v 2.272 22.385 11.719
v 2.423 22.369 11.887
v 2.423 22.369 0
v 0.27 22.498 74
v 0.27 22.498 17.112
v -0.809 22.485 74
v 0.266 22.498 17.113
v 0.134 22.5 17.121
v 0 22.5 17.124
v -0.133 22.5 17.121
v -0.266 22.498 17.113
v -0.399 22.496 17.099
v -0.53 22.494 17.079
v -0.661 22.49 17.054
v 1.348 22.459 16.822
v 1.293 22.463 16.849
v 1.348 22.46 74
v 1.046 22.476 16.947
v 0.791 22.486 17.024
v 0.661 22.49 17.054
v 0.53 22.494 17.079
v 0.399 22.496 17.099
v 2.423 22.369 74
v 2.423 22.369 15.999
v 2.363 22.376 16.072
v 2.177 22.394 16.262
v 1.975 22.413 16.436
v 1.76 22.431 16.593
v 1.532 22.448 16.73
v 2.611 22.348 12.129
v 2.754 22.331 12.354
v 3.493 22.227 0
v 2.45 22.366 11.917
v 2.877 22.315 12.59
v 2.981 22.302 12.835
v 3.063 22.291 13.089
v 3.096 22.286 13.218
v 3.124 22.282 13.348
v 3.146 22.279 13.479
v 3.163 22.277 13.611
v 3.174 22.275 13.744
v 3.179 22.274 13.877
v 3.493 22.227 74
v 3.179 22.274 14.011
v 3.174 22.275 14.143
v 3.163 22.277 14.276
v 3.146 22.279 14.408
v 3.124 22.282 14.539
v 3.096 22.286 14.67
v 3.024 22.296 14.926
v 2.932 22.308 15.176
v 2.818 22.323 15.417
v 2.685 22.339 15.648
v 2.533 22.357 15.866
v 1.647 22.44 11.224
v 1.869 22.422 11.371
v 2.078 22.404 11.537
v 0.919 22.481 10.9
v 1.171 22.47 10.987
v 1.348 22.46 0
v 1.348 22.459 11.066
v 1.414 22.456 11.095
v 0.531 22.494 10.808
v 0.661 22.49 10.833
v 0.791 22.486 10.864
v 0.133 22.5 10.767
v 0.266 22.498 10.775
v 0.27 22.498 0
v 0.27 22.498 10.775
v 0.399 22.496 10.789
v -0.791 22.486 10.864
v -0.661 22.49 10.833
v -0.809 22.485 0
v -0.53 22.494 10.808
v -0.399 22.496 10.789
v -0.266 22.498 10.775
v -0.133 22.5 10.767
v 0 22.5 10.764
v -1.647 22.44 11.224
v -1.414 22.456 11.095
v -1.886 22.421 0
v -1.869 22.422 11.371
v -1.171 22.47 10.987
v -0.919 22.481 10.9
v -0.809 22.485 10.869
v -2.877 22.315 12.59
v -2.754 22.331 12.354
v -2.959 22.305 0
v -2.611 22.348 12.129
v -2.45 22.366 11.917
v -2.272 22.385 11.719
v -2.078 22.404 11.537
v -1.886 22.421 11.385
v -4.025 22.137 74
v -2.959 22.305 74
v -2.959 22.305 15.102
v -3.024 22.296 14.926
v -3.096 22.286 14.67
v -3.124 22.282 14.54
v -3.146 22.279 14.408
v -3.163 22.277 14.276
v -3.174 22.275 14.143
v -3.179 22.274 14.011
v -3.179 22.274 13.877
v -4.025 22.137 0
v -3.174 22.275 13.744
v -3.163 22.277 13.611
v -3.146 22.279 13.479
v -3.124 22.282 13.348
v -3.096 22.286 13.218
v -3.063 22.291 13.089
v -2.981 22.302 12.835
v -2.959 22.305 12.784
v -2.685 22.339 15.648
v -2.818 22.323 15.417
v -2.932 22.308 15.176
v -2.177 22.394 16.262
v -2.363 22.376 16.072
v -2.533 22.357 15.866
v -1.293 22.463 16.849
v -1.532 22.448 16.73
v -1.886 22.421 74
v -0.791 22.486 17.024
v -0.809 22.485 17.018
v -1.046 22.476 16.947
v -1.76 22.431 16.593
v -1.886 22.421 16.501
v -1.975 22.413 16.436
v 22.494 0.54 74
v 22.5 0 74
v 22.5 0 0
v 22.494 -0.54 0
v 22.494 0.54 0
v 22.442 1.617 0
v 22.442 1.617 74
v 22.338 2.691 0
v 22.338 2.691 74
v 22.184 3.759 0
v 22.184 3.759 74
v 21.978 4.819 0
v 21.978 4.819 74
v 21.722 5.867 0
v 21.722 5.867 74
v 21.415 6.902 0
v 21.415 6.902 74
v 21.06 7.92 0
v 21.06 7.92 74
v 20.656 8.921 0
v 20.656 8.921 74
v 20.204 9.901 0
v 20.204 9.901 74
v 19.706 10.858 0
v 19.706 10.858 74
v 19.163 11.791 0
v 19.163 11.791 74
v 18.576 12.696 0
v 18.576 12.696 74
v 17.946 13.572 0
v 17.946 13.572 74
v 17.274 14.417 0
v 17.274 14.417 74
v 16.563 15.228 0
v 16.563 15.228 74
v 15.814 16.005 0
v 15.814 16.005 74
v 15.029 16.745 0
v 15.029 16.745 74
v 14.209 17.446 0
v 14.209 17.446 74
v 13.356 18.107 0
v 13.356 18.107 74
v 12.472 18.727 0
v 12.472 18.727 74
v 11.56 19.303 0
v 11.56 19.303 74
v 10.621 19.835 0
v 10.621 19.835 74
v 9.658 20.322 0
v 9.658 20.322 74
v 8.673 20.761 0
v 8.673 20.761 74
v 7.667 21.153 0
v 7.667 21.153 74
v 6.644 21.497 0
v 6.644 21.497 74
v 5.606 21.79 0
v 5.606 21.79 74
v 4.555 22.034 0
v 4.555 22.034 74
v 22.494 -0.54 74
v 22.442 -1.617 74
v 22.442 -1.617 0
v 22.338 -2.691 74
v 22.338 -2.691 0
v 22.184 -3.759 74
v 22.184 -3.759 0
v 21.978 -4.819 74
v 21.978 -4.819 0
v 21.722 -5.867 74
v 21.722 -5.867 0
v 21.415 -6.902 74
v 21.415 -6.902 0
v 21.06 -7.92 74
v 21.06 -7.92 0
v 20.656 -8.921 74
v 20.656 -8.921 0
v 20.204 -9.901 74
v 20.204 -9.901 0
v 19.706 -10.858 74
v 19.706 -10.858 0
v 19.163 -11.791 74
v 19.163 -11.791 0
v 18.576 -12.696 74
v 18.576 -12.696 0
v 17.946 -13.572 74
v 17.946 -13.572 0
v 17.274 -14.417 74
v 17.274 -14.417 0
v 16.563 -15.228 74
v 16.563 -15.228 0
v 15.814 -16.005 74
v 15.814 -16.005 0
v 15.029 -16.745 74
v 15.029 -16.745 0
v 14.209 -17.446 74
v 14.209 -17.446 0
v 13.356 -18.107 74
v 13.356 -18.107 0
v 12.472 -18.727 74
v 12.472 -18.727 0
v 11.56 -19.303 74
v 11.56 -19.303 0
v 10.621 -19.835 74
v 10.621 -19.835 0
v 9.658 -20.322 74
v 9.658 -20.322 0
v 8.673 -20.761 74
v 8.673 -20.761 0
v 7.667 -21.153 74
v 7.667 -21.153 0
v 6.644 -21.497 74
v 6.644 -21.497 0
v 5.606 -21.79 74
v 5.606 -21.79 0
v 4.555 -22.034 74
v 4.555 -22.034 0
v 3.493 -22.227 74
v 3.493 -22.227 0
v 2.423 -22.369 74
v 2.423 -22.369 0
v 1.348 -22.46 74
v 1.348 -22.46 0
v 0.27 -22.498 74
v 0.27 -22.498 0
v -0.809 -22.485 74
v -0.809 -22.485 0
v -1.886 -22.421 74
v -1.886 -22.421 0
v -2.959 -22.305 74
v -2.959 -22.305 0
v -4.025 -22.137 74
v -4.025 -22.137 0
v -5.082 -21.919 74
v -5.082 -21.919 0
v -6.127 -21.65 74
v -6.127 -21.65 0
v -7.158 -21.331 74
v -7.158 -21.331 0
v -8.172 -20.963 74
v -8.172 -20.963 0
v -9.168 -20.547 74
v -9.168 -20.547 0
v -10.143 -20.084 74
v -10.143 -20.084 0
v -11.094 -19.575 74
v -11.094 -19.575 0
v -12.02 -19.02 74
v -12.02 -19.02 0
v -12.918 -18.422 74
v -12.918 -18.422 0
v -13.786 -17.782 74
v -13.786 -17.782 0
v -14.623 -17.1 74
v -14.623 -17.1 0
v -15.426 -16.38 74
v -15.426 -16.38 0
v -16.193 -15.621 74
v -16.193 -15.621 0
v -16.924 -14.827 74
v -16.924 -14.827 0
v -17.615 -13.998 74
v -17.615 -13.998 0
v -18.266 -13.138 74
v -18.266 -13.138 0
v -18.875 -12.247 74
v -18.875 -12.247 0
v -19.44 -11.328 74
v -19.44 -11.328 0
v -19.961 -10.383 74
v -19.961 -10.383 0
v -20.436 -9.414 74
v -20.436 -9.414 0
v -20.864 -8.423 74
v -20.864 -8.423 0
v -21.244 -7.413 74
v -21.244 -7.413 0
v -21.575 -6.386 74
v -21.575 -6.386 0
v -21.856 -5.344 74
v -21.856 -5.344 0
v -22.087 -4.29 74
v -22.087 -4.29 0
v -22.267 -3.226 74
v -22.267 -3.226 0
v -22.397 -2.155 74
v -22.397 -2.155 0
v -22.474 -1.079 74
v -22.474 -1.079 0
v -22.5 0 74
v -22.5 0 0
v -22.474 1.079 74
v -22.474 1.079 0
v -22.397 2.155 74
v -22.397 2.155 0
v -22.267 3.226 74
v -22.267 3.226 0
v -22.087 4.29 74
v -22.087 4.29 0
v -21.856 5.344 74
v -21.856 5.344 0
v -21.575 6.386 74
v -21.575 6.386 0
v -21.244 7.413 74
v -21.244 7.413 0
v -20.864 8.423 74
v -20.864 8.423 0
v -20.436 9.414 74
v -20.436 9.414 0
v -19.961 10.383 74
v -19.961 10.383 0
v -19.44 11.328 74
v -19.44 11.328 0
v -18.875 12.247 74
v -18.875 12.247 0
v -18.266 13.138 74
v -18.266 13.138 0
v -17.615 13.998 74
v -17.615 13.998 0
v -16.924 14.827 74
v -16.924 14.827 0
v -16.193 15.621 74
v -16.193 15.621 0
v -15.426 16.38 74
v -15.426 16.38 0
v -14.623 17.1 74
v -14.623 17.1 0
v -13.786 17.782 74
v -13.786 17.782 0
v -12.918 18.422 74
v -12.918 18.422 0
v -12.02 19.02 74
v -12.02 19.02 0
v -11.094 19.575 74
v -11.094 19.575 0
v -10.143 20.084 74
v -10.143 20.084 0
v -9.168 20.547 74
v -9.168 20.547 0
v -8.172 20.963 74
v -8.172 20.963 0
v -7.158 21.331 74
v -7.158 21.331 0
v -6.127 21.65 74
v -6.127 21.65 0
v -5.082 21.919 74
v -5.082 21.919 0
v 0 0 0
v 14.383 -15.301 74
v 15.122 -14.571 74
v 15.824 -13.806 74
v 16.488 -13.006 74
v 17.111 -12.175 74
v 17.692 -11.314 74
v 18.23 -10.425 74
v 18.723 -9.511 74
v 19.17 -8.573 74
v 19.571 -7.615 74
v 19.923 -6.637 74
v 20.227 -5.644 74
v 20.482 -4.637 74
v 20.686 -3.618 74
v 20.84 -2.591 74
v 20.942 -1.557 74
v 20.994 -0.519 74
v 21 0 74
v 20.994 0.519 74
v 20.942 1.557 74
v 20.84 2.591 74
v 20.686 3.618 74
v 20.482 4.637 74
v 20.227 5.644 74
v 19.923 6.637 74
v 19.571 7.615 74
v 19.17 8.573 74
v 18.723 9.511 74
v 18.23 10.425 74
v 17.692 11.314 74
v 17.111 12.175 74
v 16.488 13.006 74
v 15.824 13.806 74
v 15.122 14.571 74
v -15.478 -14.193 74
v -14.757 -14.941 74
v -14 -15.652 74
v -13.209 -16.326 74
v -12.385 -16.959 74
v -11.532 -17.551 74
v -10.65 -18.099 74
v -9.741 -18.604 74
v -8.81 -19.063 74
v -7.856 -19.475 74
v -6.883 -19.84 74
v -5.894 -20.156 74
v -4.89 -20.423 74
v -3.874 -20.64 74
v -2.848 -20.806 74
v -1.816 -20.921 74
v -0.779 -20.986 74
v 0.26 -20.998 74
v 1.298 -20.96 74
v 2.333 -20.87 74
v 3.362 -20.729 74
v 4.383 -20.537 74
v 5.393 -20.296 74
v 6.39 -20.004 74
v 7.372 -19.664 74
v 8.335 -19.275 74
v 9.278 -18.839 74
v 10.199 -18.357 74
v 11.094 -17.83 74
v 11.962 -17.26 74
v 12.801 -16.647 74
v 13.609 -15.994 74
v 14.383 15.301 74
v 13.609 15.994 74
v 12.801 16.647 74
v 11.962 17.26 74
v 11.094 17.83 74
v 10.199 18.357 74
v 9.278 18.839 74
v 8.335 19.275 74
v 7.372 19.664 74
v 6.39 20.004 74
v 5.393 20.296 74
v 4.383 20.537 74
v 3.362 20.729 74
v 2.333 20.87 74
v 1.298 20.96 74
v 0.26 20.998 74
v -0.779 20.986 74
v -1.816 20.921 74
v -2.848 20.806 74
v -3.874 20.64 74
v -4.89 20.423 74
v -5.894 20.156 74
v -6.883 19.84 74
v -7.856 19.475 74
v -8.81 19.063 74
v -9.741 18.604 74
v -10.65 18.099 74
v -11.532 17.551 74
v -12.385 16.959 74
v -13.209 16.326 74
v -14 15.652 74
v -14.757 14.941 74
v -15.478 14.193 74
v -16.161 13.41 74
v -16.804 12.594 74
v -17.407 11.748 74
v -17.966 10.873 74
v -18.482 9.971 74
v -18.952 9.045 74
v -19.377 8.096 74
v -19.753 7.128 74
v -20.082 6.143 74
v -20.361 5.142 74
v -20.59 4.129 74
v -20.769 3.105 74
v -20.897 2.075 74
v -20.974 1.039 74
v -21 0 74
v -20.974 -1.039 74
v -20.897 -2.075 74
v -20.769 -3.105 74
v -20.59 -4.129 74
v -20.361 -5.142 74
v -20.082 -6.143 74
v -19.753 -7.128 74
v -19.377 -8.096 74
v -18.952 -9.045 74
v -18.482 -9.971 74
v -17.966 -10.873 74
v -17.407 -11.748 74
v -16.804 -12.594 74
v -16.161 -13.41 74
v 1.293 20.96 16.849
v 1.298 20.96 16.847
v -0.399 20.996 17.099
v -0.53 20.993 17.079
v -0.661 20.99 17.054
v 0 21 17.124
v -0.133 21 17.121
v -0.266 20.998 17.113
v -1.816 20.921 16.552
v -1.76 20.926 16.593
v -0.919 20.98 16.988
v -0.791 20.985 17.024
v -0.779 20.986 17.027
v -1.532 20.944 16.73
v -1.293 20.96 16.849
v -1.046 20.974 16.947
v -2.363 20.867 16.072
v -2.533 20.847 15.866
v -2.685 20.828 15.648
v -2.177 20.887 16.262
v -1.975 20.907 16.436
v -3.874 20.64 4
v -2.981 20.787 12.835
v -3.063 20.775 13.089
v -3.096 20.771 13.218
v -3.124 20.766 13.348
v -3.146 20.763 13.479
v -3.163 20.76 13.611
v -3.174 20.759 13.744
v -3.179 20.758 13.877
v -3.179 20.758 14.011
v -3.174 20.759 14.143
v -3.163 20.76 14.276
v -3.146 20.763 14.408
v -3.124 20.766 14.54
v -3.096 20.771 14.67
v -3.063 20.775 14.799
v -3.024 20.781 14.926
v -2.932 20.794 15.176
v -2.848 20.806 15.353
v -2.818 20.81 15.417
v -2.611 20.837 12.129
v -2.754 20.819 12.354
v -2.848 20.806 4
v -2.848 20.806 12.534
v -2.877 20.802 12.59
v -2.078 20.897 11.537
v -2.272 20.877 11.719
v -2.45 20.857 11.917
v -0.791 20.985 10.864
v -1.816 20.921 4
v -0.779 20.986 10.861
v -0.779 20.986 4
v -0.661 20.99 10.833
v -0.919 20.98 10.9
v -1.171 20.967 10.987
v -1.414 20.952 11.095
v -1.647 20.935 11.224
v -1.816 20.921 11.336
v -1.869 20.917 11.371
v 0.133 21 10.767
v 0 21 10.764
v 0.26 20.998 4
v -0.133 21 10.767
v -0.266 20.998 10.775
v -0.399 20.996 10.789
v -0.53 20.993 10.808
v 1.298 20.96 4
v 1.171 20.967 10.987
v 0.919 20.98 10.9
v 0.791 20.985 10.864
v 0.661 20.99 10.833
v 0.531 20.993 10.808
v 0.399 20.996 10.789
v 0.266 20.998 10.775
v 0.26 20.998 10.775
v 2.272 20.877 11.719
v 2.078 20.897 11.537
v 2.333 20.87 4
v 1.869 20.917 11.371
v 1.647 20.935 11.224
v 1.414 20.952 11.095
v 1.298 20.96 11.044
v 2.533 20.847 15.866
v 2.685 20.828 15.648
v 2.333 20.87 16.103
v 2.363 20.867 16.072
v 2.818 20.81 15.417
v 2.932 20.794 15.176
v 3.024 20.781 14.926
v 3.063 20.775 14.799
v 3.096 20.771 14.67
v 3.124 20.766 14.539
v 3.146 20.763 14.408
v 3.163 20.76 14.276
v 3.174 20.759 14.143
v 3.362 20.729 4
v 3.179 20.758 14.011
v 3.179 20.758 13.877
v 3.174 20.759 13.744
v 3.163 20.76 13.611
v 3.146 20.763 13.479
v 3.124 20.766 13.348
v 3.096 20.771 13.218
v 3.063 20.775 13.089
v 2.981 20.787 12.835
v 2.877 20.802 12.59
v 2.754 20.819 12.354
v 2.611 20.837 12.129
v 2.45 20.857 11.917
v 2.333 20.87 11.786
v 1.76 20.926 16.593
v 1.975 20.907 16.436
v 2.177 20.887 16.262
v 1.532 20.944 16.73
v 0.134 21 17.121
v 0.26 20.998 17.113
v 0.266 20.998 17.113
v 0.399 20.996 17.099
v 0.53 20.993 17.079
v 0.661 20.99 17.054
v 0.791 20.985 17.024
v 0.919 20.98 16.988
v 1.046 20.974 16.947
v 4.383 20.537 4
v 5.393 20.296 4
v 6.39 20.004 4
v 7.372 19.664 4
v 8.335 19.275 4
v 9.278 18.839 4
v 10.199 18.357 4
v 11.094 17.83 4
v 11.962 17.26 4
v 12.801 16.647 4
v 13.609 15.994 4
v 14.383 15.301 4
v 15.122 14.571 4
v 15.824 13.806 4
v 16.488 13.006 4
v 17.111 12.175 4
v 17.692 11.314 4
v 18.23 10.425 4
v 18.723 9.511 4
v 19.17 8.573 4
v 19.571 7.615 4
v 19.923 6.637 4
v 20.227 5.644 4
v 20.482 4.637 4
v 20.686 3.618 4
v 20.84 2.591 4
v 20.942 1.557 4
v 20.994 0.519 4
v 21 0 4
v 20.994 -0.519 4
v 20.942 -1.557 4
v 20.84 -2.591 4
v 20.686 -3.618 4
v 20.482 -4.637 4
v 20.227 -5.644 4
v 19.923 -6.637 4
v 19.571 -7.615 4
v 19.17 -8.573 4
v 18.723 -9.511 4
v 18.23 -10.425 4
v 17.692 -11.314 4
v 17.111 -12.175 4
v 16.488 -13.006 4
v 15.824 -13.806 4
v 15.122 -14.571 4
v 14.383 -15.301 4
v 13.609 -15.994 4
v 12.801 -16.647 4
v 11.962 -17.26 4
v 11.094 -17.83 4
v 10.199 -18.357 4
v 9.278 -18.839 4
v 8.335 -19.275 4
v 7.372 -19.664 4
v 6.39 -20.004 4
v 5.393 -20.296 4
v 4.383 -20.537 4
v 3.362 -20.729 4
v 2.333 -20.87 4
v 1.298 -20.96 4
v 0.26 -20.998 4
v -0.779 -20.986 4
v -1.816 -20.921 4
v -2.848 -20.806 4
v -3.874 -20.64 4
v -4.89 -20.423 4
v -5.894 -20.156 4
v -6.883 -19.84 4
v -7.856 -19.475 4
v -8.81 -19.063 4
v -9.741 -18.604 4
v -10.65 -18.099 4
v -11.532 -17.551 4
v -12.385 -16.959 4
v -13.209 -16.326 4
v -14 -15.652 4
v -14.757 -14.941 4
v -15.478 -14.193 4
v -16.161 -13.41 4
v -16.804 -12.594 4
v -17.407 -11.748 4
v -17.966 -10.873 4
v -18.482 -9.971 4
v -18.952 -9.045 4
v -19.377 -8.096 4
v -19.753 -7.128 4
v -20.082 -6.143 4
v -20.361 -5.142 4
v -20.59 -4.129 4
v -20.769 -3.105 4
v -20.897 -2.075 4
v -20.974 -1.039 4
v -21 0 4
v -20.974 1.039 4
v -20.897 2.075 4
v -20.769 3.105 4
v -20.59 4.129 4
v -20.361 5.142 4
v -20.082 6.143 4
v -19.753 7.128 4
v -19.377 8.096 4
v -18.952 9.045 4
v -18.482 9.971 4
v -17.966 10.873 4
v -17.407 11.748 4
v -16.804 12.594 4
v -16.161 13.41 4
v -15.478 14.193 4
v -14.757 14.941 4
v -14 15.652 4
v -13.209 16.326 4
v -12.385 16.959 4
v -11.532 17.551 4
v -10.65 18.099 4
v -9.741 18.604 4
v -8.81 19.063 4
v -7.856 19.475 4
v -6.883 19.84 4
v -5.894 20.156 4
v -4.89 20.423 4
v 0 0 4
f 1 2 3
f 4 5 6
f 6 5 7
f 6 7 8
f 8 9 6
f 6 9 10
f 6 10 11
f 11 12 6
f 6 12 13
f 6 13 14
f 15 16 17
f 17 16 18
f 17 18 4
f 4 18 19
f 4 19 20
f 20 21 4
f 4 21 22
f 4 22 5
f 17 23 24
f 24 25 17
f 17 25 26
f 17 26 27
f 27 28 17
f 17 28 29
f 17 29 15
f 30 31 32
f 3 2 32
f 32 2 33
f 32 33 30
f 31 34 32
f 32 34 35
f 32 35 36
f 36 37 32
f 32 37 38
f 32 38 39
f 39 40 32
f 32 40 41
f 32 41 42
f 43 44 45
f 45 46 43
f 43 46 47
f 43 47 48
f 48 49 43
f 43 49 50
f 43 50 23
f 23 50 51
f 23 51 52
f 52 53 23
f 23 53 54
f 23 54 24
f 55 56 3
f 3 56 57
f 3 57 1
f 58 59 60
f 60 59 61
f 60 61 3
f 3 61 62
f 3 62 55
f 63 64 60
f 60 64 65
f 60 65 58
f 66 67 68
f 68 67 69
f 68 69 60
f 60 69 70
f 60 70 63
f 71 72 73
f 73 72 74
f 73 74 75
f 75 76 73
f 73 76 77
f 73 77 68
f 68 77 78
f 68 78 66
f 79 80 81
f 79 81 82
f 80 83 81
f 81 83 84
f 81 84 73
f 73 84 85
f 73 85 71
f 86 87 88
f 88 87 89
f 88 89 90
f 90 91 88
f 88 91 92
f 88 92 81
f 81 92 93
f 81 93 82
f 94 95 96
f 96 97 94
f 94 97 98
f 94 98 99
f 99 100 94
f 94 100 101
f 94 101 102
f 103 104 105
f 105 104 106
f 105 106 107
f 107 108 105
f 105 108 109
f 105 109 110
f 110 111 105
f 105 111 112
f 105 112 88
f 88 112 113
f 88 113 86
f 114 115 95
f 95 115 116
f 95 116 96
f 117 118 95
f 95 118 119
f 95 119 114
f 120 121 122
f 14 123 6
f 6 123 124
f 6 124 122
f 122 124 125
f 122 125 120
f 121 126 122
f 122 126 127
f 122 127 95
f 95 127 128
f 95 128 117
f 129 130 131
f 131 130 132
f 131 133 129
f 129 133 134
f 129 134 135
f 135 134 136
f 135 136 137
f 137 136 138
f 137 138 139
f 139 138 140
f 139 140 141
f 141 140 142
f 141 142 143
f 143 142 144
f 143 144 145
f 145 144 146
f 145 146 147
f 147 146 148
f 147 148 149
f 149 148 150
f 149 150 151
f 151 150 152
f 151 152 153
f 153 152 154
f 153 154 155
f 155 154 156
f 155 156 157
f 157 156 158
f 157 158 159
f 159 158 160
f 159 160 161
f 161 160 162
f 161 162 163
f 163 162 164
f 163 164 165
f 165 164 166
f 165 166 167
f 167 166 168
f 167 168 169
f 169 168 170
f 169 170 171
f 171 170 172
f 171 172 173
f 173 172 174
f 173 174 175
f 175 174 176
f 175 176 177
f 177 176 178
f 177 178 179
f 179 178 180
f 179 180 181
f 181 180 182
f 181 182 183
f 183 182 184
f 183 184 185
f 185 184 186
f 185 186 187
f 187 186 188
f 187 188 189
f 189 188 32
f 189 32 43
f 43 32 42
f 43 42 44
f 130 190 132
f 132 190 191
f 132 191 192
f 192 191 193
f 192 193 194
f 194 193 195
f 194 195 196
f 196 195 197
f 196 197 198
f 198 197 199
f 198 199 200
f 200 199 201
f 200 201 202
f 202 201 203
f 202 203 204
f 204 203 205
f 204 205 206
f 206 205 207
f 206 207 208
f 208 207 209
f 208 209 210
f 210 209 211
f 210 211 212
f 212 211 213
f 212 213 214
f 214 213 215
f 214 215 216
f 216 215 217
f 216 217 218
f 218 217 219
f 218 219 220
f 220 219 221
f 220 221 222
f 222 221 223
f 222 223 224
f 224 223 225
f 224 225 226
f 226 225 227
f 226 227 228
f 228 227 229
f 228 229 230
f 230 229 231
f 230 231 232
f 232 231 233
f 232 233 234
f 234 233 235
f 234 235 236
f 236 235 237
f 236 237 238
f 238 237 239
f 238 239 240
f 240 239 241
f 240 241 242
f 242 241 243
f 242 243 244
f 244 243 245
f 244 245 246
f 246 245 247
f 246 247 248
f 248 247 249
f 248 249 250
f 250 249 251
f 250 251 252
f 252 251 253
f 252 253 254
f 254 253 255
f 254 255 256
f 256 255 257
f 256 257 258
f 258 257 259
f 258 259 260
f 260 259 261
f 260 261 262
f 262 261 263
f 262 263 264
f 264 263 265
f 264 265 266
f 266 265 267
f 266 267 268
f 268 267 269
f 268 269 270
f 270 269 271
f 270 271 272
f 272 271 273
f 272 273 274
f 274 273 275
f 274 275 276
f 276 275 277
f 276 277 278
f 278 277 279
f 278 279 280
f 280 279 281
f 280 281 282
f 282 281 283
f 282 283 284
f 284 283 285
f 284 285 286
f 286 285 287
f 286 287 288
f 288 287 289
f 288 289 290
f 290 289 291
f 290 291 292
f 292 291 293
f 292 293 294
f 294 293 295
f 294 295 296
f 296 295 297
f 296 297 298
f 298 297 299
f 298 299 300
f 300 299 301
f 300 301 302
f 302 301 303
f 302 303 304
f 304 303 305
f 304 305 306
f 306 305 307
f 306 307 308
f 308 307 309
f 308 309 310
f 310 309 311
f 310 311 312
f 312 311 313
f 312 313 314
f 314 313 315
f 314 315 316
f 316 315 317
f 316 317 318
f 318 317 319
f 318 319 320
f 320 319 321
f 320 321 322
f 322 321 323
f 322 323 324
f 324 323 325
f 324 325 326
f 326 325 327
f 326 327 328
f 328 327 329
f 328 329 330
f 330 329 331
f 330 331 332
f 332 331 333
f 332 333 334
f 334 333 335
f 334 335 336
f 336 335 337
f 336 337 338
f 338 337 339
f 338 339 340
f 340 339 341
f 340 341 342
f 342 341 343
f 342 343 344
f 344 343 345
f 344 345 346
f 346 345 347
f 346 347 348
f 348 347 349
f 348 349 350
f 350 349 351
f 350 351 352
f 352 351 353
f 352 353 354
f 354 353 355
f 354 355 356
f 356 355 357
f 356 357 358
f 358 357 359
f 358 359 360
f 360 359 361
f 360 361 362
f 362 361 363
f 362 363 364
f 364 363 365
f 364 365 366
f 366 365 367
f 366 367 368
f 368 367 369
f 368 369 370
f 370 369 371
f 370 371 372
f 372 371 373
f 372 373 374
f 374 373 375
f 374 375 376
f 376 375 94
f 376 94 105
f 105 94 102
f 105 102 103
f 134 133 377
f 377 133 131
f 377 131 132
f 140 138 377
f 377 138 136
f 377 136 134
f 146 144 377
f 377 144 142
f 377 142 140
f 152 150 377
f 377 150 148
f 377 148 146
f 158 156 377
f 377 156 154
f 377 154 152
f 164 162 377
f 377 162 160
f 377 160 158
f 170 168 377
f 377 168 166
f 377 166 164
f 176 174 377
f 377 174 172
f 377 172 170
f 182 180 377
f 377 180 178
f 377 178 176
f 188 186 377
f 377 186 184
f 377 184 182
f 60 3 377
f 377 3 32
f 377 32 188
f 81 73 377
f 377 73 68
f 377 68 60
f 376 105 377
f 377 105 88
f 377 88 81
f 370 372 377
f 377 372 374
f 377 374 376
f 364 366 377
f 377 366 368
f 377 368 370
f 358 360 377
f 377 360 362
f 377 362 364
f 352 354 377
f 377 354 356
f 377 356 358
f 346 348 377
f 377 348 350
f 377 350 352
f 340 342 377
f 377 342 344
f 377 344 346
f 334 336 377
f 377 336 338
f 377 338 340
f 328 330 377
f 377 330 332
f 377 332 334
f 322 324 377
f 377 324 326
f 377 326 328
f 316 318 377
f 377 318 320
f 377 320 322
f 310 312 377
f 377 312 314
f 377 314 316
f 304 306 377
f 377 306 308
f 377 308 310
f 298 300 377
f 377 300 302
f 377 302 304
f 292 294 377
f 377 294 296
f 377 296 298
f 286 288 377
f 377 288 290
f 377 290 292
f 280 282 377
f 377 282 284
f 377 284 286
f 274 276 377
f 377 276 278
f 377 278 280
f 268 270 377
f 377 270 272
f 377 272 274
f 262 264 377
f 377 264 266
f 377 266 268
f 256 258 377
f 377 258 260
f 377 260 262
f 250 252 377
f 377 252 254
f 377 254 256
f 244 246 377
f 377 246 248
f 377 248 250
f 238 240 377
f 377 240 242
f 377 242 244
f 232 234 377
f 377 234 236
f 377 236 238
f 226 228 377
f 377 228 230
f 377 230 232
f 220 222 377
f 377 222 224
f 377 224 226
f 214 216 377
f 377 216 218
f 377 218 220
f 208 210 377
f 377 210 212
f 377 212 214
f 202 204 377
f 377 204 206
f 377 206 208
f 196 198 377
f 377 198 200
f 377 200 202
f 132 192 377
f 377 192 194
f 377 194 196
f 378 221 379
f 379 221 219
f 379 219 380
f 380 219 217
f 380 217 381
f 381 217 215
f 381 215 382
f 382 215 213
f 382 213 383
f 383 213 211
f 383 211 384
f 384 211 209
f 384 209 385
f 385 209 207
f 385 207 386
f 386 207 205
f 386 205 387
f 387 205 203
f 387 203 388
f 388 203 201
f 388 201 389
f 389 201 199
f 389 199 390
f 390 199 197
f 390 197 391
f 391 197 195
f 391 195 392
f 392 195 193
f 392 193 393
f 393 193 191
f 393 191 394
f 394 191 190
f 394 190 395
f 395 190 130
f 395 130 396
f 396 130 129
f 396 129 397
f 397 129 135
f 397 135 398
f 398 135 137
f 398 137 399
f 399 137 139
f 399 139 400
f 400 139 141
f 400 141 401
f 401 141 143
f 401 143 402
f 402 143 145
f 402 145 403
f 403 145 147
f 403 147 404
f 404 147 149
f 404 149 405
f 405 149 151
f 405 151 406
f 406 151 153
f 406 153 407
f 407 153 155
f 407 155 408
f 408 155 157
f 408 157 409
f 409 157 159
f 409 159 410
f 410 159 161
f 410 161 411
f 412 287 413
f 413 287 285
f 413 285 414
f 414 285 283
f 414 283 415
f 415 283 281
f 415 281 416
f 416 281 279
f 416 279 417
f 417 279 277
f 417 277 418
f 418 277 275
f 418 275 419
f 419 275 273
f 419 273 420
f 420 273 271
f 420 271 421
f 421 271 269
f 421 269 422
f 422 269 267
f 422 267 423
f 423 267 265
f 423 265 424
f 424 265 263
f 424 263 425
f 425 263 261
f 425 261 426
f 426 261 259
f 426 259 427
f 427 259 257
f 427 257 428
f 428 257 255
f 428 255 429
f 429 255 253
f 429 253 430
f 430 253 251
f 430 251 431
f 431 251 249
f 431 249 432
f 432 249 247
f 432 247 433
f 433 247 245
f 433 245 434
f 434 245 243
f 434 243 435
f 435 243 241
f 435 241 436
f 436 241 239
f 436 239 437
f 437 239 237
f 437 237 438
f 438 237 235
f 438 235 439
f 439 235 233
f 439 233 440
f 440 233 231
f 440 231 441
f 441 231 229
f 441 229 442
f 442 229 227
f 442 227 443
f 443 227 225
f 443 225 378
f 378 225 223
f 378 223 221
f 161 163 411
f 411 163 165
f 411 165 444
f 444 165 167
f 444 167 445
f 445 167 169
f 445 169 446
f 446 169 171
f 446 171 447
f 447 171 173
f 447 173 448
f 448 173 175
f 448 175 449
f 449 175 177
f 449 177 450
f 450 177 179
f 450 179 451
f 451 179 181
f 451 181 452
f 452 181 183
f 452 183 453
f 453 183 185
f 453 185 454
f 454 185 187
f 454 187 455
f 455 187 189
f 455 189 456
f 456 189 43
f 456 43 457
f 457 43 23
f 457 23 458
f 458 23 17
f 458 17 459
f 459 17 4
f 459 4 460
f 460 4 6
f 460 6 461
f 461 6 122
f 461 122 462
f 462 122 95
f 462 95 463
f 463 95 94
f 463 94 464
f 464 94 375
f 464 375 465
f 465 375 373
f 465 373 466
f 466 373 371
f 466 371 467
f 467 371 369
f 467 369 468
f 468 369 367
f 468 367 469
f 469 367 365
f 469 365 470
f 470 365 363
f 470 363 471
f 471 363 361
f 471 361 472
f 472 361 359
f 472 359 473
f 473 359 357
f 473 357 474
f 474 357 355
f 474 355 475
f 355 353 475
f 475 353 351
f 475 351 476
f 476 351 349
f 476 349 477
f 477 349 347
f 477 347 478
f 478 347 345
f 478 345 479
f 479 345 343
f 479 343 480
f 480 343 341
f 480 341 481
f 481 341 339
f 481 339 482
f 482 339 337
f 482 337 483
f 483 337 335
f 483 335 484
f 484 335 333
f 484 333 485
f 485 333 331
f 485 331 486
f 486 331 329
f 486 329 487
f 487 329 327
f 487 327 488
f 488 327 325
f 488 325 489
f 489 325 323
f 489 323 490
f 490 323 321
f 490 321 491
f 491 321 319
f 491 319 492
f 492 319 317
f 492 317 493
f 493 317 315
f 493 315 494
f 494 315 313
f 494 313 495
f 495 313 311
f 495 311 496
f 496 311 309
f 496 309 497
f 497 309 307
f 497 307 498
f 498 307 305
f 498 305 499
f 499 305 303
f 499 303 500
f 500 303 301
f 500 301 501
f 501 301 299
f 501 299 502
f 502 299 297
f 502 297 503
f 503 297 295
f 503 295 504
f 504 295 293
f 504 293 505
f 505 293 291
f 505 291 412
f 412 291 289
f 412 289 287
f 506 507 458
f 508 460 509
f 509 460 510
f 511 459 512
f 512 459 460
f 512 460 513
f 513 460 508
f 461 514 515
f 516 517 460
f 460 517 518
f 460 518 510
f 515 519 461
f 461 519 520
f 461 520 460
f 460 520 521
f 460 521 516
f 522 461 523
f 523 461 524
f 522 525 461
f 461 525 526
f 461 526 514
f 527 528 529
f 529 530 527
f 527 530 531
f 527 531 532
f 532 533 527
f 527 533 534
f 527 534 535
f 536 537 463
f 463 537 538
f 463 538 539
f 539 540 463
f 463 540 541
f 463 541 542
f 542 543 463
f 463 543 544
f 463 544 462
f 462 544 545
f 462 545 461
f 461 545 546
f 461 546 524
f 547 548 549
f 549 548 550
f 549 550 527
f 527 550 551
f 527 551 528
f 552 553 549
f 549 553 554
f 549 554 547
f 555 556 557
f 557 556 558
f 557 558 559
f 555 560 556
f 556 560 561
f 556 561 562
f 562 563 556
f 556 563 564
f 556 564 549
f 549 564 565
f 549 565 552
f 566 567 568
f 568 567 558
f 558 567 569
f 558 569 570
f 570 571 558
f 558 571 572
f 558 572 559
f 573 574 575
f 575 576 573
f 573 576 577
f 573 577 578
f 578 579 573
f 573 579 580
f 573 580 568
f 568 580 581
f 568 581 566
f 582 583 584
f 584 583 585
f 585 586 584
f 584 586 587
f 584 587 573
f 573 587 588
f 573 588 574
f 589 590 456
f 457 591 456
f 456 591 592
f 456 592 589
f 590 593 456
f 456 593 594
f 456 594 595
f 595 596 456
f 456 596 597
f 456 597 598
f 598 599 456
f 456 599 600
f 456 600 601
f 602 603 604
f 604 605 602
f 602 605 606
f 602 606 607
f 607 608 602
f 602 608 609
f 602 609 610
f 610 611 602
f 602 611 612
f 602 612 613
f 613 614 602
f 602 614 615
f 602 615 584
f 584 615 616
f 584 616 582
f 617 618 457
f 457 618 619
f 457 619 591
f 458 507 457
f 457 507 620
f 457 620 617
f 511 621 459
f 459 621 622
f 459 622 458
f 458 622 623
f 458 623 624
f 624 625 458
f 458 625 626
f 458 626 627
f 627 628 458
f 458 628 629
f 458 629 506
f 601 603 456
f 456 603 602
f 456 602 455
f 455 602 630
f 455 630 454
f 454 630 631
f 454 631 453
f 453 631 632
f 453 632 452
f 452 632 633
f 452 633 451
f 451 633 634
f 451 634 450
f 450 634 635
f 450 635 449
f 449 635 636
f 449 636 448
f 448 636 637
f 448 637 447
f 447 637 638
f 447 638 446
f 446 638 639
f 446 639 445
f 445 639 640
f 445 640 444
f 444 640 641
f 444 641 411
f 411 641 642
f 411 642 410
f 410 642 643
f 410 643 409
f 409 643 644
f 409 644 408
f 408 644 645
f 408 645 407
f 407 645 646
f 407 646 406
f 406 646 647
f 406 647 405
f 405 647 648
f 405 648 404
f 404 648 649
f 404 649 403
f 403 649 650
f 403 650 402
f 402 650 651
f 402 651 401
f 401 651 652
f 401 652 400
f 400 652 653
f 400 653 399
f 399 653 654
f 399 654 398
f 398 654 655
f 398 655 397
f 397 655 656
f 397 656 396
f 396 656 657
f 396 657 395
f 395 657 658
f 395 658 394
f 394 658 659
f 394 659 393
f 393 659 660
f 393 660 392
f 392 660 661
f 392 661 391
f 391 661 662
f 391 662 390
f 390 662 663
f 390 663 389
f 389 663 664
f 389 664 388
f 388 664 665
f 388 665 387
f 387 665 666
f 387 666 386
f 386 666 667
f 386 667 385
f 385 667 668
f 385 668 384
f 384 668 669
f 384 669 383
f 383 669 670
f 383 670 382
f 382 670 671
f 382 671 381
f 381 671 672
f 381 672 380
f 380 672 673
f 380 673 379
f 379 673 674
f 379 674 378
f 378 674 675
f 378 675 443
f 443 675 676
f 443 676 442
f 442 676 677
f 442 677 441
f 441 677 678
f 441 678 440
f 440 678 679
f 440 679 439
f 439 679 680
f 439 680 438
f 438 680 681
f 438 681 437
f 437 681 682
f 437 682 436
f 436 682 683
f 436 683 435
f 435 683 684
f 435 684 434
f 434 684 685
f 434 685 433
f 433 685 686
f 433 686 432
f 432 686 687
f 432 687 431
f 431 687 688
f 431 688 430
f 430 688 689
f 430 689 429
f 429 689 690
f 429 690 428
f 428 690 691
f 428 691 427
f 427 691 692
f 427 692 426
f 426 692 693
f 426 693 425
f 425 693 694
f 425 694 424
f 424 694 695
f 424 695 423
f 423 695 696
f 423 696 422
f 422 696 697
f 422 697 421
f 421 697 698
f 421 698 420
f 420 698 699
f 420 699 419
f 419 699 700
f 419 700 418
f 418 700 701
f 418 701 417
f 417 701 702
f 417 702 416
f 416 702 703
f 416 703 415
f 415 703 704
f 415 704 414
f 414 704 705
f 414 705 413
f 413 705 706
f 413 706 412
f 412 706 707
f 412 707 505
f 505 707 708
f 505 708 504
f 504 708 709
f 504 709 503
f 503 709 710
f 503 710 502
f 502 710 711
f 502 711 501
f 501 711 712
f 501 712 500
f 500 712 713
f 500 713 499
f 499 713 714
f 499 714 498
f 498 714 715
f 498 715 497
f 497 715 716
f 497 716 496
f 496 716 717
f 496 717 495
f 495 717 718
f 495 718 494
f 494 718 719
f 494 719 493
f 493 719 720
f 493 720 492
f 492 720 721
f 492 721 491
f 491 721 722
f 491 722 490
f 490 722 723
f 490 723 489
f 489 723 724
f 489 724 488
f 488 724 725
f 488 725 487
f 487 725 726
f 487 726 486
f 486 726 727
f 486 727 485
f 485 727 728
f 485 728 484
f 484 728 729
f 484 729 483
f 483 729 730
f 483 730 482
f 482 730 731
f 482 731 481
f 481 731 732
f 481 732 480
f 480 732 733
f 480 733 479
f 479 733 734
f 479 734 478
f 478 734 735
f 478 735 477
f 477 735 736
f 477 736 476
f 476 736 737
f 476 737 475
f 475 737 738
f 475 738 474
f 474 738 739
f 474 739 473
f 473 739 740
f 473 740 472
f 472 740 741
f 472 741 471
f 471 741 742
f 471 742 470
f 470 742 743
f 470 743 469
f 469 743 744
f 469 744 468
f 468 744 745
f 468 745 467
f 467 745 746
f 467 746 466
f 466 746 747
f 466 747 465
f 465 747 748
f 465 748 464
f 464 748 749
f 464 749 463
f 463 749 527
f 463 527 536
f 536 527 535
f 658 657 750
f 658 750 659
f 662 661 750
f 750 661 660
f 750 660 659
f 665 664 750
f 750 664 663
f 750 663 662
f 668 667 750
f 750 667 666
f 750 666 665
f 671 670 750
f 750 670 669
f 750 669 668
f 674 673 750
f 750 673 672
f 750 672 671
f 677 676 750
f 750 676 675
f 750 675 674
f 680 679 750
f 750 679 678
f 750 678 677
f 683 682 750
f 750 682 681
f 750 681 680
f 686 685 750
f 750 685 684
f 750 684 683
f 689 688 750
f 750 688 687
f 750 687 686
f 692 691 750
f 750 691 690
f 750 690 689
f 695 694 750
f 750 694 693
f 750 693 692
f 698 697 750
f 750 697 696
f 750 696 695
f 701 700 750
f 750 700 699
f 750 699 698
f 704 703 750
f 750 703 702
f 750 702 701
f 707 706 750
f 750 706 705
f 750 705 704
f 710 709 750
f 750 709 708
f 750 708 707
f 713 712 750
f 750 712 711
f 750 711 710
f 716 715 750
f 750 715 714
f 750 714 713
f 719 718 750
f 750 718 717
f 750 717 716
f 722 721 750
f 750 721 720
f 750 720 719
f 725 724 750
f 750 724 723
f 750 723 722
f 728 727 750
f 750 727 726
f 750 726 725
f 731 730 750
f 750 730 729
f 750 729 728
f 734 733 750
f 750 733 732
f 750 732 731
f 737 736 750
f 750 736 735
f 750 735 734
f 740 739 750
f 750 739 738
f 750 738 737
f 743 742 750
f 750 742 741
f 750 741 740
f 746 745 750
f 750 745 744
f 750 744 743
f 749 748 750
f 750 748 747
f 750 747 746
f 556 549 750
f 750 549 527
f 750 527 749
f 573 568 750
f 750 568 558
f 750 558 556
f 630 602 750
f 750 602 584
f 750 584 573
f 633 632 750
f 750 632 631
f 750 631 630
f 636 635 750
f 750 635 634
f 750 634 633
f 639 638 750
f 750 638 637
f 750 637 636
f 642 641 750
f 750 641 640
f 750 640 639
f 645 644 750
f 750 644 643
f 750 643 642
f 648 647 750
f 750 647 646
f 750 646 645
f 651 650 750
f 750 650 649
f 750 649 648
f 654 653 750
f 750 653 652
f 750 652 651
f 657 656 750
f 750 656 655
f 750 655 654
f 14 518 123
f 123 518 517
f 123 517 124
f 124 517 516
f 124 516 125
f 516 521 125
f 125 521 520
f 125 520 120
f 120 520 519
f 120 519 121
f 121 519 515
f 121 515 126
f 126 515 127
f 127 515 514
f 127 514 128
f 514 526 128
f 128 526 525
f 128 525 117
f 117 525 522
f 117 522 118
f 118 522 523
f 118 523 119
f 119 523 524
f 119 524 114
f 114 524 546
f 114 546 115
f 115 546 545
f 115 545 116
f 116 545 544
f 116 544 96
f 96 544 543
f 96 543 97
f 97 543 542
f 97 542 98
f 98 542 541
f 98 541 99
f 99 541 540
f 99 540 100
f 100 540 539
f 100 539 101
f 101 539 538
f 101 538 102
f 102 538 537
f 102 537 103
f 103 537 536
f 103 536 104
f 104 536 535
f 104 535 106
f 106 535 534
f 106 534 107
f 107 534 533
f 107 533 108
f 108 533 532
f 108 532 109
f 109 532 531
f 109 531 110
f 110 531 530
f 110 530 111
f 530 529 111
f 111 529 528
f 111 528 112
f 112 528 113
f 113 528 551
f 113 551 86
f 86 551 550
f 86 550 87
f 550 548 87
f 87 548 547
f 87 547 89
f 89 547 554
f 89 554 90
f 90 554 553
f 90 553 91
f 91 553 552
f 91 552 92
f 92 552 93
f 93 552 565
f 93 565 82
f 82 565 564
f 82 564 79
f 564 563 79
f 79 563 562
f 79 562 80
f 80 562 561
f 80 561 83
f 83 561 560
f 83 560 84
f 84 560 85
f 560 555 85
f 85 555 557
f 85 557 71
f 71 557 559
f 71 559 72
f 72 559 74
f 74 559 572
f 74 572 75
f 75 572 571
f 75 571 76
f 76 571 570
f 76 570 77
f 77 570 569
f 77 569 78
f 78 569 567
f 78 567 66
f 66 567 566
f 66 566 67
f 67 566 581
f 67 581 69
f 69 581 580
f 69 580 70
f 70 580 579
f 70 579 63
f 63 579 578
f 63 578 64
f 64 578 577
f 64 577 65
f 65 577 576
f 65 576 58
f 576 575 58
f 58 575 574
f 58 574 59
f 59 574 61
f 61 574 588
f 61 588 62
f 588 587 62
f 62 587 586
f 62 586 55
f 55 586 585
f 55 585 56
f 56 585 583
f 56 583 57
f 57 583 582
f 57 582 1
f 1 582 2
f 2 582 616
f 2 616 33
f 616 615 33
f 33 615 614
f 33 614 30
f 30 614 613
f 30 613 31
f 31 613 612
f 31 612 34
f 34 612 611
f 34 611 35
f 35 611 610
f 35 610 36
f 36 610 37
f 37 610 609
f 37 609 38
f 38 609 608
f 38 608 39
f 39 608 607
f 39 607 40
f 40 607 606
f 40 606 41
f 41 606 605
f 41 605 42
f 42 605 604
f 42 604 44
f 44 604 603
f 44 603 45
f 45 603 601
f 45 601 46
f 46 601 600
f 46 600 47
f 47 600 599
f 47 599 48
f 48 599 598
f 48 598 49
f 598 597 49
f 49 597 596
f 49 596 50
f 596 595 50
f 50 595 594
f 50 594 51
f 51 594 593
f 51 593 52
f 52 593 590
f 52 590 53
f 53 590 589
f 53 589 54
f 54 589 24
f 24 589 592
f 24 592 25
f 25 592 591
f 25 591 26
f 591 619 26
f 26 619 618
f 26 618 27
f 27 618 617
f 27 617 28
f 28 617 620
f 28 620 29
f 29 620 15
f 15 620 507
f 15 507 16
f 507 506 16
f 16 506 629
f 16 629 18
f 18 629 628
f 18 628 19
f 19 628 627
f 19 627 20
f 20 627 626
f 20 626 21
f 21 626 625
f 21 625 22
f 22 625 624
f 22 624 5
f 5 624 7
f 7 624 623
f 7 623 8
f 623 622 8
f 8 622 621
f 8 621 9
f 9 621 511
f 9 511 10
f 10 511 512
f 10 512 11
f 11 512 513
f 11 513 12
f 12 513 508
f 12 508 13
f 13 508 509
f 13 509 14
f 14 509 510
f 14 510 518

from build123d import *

# Parameters (mm, degrees)
ESQUISSE1_R                 = 22.5
BOSS_EXTRU_1_DEPTH          = 4
ESQUISSE2_R                 = 22.5
ESQUISSE2_R_2               = 21
BOSS_EXTRU_2_DEPTH          = 70
ENL_V_START                 = 20.75783225
ENL_V_MAT_EXTRU_1_OUTLINE_R = 3.18
ENL_V_MAT_EXTRU_1_DEPTH     = 1.742167853


# Read off the part's stored shape, not the designer's step: Enlèv. mat.-Extru.1
with BuildPart() as part:
    # Esquisse1 → Boss.-Extru.1 (new body)
    with BuildSketch(Plane.XY):
        Circle(ESQUISSE1_R)
    extrude(amount=BOSS_EXTRU_1_DEPTH)

    # Esquisse2 → Boss.-Extru.2 (add)
    with BuildSketch(Plane.XY.offset(4)):
        Circle(ESQUISSE2_R)
        Circle(ESQUISSE2_R_2, mode=Mode.SUBTRACT)
    extrude(amount=BOSS_EXTRU_2_DEPTH)

    # Enlèv. mat.-Extru.1 outline → Enlèv. mat.-Extru.1 (cut)
    with BuildSketch(Plane(origin=(0, 0, 0), x_dir=(1, 0, 0), z_dir=(0, 1, 0)).offset(ENL_V_START)):
        with Locations((0, -13.943817021)):
            Circle(ENL_V_MAT_EXTRU_1_OUTLINE_R)
    extrude(amount=ENL_V_MAT_EXTRU_1_DEPTH, mode=Mode.SUBTRACT)


solid = part.part
